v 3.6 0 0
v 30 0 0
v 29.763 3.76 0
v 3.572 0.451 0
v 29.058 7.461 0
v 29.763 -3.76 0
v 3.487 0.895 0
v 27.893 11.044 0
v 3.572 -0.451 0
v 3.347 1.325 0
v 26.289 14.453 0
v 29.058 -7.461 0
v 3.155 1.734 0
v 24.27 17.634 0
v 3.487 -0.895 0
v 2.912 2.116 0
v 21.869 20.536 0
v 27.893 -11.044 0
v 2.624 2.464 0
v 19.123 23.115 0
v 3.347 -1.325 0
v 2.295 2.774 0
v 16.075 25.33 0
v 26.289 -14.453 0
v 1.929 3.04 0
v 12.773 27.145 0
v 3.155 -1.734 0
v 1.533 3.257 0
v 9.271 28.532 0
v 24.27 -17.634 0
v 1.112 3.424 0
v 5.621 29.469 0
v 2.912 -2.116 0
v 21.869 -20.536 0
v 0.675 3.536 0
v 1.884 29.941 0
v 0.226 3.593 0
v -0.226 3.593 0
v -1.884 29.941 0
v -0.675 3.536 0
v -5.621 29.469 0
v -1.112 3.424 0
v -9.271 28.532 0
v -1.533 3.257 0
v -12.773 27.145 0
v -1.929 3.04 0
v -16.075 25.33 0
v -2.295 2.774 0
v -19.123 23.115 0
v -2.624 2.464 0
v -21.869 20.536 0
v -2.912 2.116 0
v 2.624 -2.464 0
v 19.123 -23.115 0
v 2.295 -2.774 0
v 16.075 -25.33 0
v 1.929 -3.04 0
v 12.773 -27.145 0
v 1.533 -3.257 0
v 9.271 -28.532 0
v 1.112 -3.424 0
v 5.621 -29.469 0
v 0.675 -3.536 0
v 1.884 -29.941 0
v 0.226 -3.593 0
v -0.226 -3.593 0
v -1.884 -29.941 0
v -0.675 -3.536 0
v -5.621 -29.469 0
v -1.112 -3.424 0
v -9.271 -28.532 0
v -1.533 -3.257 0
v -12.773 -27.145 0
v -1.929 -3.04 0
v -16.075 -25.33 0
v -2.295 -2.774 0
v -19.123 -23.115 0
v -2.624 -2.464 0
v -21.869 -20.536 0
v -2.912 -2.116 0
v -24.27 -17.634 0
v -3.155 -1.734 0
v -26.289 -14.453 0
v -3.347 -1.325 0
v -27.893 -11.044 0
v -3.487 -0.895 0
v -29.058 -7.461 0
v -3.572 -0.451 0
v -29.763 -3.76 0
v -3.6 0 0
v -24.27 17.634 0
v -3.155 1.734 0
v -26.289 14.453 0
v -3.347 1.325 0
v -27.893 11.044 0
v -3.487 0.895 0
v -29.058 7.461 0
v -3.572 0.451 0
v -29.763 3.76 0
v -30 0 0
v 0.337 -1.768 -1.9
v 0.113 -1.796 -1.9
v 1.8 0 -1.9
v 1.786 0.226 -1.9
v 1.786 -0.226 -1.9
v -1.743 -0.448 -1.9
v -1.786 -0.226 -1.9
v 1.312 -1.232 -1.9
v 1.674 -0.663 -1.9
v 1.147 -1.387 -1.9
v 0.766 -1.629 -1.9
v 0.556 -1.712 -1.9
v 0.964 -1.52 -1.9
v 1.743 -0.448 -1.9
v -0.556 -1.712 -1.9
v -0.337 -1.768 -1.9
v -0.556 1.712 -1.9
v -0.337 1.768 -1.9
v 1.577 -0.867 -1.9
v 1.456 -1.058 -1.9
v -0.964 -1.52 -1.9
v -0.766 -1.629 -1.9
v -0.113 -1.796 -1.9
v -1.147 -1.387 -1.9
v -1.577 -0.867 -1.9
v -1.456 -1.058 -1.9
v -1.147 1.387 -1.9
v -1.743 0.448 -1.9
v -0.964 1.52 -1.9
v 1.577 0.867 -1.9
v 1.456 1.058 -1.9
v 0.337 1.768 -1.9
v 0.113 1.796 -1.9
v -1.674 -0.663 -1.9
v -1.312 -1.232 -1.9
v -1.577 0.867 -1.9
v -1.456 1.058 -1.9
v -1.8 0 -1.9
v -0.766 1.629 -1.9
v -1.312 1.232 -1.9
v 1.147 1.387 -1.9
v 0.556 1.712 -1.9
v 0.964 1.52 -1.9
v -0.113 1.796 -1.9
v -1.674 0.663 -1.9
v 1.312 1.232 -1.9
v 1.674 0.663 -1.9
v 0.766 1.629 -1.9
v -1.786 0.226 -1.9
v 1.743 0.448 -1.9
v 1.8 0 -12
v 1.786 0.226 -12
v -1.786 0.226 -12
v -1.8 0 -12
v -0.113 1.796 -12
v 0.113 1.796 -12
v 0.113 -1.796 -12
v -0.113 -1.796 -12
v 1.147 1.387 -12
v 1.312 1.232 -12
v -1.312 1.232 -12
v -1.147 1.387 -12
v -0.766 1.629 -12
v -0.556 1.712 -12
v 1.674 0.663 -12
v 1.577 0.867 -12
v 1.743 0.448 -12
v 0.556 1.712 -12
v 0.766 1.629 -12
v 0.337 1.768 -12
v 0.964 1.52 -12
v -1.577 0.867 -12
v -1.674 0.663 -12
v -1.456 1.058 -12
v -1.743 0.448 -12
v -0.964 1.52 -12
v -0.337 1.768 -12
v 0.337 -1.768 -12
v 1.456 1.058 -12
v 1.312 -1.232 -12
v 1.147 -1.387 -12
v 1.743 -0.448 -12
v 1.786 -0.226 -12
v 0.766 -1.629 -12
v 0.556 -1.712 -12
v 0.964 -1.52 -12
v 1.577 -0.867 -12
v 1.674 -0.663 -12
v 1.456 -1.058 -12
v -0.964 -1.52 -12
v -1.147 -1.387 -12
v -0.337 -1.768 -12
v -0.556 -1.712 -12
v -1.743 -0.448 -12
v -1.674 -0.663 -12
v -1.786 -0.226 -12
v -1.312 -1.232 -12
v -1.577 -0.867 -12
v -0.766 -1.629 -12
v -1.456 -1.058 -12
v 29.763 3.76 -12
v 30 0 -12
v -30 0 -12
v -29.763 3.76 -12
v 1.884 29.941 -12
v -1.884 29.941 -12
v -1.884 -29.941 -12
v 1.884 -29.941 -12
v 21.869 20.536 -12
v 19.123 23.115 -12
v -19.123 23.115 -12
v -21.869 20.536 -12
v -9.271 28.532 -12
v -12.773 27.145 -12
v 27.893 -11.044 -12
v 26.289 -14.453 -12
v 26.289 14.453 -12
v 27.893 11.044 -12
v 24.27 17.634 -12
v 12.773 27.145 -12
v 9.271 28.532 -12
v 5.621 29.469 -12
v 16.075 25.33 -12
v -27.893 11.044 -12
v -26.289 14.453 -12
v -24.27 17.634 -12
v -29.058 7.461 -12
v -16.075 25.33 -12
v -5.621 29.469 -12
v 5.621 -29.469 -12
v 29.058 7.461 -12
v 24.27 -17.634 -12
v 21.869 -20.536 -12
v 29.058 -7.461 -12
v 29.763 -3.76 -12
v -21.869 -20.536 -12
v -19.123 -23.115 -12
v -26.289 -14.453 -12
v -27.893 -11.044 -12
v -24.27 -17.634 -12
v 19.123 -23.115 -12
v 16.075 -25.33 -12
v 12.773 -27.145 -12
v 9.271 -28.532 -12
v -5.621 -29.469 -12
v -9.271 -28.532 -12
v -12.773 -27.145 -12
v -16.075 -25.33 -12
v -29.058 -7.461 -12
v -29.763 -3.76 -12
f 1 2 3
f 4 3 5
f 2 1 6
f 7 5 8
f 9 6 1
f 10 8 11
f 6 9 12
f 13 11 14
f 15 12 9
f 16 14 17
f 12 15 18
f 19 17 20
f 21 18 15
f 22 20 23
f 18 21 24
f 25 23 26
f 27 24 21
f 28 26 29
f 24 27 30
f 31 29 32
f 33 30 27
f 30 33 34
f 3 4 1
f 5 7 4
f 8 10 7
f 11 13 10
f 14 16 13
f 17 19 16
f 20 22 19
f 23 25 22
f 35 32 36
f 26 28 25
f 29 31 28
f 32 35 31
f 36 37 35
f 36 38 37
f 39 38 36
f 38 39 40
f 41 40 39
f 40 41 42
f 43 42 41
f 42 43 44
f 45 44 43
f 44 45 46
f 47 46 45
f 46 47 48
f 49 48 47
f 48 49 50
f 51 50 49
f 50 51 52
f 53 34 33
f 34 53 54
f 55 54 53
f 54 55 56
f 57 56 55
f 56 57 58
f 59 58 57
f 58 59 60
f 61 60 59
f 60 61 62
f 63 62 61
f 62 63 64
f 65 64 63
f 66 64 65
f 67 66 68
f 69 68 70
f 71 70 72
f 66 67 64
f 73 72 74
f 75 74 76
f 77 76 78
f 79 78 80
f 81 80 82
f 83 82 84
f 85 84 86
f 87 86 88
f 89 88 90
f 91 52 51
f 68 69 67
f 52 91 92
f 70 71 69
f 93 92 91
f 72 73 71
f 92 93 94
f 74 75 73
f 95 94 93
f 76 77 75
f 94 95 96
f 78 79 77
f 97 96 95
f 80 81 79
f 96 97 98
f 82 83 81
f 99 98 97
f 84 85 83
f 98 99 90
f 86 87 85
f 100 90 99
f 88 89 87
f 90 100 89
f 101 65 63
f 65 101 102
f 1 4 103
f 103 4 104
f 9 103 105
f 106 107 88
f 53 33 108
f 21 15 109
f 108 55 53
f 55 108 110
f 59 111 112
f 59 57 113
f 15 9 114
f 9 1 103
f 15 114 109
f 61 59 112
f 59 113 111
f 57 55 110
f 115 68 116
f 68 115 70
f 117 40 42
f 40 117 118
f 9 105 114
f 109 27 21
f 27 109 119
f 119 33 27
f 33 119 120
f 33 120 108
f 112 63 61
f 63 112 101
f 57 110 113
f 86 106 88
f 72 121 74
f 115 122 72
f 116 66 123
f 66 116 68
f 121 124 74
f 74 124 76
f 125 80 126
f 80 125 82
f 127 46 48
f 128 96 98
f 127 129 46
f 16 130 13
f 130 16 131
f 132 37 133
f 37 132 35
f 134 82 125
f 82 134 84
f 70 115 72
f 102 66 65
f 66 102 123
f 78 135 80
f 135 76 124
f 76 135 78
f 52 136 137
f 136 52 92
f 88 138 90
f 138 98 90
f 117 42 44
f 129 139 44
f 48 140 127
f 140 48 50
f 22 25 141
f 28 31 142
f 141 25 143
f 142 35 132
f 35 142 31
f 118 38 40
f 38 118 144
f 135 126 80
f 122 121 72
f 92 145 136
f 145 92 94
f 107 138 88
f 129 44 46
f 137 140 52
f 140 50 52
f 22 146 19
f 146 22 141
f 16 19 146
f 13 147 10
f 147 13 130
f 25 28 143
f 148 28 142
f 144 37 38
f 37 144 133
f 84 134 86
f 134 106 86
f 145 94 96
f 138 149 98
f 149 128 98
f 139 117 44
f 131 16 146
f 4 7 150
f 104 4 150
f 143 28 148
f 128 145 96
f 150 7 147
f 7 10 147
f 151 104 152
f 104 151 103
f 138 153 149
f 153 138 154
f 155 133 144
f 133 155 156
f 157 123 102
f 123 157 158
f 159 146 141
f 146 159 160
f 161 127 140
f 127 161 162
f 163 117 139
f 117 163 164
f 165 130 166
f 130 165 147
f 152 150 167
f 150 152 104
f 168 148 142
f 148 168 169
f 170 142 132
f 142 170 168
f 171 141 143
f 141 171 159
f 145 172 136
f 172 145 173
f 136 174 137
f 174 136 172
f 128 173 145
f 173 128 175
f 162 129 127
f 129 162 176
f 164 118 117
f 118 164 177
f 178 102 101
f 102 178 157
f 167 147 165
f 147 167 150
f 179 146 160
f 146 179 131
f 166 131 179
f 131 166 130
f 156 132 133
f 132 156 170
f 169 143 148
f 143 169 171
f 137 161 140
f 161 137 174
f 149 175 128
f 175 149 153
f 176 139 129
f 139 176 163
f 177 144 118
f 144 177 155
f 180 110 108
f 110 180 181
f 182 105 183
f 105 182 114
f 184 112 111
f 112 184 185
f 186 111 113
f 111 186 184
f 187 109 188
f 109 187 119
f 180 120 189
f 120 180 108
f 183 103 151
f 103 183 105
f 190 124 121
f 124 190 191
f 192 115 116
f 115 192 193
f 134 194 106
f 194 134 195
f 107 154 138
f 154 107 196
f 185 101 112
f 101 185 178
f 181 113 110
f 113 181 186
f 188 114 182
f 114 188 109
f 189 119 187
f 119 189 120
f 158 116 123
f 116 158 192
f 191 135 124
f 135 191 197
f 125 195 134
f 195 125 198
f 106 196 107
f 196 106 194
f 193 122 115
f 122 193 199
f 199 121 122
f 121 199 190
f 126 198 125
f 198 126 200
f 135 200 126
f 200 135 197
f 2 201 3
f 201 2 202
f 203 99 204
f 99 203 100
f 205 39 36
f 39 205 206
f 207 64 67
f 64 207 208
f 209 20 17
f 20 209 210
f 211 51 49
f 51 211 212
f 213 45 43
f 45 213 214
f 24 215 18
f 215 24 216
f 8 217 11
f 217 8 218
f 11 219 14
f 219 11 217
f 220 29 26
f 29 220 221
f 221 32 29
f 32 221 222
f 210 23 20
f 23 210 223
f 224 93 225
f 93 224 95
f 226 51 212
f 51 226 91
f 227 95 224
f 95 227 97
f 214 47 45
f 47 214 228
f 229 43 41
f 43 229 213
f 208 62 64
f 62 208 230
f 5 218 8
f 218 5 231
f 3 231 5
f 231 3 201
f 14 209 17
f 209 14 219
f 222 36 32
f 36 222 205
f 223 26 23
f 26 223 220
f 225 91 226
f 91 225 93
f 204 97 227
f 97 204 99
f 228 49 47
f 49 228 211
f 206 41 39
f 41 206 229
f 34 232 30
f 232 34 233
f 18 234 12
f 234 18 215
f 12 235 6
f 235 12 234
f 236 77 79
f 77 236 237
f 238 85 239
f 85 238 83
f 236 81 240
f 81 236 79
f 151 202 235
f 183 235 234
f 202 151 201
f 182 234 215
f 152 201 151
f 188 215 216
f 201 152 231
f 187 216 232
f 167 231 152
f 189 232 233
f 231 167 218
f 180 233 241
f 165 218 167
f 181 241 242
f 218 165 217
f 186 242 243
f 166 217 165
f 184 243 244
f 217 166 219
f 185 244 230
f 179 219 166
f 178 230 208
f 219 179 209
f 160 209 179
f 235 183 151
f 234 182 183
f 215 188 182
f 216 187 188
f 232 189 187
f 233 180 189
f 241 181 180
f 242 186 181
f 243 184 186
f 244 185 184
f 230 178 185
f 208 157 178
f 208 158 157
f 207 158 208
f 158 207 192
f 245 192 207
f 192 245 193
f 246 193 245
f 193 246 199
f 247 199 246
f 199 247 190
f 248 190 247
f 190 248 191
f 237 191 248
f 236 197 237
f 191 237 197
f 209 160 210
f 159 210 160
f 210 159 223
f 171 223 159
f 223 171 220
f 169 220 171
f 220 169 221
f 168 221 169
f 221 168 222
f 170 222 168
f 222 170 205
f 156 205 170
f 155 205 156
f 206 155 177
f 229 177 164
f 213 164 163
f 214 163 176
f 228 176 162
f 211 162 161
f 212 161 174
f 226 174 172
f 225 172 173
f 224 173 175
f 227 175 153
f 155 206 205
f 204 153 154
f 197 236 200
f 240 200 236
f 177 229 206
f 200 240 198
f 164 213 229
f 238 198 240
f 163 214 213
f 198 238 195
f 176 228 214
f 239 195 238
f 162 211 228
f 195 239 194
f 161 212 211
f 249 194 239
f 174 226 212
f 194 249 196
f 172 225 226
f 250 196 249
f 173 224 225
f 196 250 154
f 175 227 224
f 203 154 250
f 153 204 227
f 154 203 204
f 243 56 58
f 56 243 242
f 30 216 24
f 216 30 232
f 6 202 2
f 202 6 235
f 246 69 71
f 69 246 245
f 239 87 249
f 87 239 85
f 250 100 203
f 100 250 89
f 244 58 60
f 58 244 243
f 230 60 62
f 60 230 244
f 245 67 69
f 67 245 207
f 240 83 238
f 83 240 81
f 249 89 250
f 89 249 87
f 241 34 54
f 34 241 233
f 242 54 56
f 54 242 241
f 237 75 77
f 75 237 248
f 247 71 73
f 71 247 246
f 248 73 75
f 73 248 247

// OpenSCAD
$fn = 50;

difference() {
	union() {
		translate(v = [0, 0, -12.0]) {
			cylinder(h = 12, r = 30.0);
		}
	}
	union() {
		translate(v = [0, 0, 0]) {
			rotate(a = [0, 0, 0]) {
				difference() {
					union() {
						translate(v = [0, 0, -15.0]) {
							cylinder(h = 15, r = 1.5);
						}
						translate(v = [0, 0, -1.9]) {
							cylinder(h = 1.9, r1 = 1.8, r2 = 3.6);
						}
						translate(v = [0, 0, -15.0]) {
							cylinder(h = 15, r = 1.8);
						}
						translate(v = [0, 0, -15.0]) {
							cylinder(h = 15, r = 1.5);
						}
					}
					union();
				}
			}
		}
	}
}
